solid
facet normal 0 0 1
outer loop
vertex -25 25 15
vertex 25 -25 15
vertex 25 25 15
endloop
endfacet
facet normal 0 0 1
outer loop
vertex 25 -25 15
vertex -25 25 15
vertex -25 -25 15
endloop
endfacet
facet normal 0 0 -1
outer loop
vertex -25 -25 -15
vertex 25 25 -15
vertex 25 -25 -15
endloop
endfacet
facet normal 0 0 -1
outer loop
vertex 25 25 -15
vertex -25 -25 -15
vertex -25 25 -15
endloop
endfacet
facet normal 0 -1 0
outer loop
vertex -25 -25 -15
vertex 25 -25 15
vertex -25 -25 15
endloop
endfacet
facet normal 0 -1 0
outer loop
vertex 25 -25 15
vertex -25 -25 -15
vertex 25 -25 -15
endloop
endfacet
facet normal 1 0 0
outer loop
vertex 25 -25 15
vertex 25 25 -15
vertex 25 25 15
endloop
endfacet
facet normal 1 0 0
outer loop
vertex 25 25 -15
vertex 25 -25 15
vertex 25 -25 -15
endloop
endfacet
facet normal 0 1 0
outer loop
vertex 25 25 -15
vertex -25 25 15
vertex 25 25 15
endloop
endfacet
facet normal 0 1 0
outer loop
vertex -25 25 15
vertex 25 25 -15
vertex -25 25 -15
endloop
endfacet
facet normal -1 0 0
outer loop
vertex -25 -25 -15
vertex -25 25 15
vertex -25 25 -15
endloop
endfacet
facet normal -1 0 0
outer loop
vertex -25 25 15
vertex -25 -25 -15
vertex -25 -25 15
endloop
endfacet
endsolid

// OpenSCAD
// Define parameters for the flat square plate
plate_size = 50; // Length and width of the square plate
plate_thickness = 30; // Adjusted thickness to match the original model

// Function to create a single flat square plate
module flat_square_plate() {
    cube([plate_size, plate_size, plate_thickness], center = true);
}

// Render the model
flat_square_plate();
